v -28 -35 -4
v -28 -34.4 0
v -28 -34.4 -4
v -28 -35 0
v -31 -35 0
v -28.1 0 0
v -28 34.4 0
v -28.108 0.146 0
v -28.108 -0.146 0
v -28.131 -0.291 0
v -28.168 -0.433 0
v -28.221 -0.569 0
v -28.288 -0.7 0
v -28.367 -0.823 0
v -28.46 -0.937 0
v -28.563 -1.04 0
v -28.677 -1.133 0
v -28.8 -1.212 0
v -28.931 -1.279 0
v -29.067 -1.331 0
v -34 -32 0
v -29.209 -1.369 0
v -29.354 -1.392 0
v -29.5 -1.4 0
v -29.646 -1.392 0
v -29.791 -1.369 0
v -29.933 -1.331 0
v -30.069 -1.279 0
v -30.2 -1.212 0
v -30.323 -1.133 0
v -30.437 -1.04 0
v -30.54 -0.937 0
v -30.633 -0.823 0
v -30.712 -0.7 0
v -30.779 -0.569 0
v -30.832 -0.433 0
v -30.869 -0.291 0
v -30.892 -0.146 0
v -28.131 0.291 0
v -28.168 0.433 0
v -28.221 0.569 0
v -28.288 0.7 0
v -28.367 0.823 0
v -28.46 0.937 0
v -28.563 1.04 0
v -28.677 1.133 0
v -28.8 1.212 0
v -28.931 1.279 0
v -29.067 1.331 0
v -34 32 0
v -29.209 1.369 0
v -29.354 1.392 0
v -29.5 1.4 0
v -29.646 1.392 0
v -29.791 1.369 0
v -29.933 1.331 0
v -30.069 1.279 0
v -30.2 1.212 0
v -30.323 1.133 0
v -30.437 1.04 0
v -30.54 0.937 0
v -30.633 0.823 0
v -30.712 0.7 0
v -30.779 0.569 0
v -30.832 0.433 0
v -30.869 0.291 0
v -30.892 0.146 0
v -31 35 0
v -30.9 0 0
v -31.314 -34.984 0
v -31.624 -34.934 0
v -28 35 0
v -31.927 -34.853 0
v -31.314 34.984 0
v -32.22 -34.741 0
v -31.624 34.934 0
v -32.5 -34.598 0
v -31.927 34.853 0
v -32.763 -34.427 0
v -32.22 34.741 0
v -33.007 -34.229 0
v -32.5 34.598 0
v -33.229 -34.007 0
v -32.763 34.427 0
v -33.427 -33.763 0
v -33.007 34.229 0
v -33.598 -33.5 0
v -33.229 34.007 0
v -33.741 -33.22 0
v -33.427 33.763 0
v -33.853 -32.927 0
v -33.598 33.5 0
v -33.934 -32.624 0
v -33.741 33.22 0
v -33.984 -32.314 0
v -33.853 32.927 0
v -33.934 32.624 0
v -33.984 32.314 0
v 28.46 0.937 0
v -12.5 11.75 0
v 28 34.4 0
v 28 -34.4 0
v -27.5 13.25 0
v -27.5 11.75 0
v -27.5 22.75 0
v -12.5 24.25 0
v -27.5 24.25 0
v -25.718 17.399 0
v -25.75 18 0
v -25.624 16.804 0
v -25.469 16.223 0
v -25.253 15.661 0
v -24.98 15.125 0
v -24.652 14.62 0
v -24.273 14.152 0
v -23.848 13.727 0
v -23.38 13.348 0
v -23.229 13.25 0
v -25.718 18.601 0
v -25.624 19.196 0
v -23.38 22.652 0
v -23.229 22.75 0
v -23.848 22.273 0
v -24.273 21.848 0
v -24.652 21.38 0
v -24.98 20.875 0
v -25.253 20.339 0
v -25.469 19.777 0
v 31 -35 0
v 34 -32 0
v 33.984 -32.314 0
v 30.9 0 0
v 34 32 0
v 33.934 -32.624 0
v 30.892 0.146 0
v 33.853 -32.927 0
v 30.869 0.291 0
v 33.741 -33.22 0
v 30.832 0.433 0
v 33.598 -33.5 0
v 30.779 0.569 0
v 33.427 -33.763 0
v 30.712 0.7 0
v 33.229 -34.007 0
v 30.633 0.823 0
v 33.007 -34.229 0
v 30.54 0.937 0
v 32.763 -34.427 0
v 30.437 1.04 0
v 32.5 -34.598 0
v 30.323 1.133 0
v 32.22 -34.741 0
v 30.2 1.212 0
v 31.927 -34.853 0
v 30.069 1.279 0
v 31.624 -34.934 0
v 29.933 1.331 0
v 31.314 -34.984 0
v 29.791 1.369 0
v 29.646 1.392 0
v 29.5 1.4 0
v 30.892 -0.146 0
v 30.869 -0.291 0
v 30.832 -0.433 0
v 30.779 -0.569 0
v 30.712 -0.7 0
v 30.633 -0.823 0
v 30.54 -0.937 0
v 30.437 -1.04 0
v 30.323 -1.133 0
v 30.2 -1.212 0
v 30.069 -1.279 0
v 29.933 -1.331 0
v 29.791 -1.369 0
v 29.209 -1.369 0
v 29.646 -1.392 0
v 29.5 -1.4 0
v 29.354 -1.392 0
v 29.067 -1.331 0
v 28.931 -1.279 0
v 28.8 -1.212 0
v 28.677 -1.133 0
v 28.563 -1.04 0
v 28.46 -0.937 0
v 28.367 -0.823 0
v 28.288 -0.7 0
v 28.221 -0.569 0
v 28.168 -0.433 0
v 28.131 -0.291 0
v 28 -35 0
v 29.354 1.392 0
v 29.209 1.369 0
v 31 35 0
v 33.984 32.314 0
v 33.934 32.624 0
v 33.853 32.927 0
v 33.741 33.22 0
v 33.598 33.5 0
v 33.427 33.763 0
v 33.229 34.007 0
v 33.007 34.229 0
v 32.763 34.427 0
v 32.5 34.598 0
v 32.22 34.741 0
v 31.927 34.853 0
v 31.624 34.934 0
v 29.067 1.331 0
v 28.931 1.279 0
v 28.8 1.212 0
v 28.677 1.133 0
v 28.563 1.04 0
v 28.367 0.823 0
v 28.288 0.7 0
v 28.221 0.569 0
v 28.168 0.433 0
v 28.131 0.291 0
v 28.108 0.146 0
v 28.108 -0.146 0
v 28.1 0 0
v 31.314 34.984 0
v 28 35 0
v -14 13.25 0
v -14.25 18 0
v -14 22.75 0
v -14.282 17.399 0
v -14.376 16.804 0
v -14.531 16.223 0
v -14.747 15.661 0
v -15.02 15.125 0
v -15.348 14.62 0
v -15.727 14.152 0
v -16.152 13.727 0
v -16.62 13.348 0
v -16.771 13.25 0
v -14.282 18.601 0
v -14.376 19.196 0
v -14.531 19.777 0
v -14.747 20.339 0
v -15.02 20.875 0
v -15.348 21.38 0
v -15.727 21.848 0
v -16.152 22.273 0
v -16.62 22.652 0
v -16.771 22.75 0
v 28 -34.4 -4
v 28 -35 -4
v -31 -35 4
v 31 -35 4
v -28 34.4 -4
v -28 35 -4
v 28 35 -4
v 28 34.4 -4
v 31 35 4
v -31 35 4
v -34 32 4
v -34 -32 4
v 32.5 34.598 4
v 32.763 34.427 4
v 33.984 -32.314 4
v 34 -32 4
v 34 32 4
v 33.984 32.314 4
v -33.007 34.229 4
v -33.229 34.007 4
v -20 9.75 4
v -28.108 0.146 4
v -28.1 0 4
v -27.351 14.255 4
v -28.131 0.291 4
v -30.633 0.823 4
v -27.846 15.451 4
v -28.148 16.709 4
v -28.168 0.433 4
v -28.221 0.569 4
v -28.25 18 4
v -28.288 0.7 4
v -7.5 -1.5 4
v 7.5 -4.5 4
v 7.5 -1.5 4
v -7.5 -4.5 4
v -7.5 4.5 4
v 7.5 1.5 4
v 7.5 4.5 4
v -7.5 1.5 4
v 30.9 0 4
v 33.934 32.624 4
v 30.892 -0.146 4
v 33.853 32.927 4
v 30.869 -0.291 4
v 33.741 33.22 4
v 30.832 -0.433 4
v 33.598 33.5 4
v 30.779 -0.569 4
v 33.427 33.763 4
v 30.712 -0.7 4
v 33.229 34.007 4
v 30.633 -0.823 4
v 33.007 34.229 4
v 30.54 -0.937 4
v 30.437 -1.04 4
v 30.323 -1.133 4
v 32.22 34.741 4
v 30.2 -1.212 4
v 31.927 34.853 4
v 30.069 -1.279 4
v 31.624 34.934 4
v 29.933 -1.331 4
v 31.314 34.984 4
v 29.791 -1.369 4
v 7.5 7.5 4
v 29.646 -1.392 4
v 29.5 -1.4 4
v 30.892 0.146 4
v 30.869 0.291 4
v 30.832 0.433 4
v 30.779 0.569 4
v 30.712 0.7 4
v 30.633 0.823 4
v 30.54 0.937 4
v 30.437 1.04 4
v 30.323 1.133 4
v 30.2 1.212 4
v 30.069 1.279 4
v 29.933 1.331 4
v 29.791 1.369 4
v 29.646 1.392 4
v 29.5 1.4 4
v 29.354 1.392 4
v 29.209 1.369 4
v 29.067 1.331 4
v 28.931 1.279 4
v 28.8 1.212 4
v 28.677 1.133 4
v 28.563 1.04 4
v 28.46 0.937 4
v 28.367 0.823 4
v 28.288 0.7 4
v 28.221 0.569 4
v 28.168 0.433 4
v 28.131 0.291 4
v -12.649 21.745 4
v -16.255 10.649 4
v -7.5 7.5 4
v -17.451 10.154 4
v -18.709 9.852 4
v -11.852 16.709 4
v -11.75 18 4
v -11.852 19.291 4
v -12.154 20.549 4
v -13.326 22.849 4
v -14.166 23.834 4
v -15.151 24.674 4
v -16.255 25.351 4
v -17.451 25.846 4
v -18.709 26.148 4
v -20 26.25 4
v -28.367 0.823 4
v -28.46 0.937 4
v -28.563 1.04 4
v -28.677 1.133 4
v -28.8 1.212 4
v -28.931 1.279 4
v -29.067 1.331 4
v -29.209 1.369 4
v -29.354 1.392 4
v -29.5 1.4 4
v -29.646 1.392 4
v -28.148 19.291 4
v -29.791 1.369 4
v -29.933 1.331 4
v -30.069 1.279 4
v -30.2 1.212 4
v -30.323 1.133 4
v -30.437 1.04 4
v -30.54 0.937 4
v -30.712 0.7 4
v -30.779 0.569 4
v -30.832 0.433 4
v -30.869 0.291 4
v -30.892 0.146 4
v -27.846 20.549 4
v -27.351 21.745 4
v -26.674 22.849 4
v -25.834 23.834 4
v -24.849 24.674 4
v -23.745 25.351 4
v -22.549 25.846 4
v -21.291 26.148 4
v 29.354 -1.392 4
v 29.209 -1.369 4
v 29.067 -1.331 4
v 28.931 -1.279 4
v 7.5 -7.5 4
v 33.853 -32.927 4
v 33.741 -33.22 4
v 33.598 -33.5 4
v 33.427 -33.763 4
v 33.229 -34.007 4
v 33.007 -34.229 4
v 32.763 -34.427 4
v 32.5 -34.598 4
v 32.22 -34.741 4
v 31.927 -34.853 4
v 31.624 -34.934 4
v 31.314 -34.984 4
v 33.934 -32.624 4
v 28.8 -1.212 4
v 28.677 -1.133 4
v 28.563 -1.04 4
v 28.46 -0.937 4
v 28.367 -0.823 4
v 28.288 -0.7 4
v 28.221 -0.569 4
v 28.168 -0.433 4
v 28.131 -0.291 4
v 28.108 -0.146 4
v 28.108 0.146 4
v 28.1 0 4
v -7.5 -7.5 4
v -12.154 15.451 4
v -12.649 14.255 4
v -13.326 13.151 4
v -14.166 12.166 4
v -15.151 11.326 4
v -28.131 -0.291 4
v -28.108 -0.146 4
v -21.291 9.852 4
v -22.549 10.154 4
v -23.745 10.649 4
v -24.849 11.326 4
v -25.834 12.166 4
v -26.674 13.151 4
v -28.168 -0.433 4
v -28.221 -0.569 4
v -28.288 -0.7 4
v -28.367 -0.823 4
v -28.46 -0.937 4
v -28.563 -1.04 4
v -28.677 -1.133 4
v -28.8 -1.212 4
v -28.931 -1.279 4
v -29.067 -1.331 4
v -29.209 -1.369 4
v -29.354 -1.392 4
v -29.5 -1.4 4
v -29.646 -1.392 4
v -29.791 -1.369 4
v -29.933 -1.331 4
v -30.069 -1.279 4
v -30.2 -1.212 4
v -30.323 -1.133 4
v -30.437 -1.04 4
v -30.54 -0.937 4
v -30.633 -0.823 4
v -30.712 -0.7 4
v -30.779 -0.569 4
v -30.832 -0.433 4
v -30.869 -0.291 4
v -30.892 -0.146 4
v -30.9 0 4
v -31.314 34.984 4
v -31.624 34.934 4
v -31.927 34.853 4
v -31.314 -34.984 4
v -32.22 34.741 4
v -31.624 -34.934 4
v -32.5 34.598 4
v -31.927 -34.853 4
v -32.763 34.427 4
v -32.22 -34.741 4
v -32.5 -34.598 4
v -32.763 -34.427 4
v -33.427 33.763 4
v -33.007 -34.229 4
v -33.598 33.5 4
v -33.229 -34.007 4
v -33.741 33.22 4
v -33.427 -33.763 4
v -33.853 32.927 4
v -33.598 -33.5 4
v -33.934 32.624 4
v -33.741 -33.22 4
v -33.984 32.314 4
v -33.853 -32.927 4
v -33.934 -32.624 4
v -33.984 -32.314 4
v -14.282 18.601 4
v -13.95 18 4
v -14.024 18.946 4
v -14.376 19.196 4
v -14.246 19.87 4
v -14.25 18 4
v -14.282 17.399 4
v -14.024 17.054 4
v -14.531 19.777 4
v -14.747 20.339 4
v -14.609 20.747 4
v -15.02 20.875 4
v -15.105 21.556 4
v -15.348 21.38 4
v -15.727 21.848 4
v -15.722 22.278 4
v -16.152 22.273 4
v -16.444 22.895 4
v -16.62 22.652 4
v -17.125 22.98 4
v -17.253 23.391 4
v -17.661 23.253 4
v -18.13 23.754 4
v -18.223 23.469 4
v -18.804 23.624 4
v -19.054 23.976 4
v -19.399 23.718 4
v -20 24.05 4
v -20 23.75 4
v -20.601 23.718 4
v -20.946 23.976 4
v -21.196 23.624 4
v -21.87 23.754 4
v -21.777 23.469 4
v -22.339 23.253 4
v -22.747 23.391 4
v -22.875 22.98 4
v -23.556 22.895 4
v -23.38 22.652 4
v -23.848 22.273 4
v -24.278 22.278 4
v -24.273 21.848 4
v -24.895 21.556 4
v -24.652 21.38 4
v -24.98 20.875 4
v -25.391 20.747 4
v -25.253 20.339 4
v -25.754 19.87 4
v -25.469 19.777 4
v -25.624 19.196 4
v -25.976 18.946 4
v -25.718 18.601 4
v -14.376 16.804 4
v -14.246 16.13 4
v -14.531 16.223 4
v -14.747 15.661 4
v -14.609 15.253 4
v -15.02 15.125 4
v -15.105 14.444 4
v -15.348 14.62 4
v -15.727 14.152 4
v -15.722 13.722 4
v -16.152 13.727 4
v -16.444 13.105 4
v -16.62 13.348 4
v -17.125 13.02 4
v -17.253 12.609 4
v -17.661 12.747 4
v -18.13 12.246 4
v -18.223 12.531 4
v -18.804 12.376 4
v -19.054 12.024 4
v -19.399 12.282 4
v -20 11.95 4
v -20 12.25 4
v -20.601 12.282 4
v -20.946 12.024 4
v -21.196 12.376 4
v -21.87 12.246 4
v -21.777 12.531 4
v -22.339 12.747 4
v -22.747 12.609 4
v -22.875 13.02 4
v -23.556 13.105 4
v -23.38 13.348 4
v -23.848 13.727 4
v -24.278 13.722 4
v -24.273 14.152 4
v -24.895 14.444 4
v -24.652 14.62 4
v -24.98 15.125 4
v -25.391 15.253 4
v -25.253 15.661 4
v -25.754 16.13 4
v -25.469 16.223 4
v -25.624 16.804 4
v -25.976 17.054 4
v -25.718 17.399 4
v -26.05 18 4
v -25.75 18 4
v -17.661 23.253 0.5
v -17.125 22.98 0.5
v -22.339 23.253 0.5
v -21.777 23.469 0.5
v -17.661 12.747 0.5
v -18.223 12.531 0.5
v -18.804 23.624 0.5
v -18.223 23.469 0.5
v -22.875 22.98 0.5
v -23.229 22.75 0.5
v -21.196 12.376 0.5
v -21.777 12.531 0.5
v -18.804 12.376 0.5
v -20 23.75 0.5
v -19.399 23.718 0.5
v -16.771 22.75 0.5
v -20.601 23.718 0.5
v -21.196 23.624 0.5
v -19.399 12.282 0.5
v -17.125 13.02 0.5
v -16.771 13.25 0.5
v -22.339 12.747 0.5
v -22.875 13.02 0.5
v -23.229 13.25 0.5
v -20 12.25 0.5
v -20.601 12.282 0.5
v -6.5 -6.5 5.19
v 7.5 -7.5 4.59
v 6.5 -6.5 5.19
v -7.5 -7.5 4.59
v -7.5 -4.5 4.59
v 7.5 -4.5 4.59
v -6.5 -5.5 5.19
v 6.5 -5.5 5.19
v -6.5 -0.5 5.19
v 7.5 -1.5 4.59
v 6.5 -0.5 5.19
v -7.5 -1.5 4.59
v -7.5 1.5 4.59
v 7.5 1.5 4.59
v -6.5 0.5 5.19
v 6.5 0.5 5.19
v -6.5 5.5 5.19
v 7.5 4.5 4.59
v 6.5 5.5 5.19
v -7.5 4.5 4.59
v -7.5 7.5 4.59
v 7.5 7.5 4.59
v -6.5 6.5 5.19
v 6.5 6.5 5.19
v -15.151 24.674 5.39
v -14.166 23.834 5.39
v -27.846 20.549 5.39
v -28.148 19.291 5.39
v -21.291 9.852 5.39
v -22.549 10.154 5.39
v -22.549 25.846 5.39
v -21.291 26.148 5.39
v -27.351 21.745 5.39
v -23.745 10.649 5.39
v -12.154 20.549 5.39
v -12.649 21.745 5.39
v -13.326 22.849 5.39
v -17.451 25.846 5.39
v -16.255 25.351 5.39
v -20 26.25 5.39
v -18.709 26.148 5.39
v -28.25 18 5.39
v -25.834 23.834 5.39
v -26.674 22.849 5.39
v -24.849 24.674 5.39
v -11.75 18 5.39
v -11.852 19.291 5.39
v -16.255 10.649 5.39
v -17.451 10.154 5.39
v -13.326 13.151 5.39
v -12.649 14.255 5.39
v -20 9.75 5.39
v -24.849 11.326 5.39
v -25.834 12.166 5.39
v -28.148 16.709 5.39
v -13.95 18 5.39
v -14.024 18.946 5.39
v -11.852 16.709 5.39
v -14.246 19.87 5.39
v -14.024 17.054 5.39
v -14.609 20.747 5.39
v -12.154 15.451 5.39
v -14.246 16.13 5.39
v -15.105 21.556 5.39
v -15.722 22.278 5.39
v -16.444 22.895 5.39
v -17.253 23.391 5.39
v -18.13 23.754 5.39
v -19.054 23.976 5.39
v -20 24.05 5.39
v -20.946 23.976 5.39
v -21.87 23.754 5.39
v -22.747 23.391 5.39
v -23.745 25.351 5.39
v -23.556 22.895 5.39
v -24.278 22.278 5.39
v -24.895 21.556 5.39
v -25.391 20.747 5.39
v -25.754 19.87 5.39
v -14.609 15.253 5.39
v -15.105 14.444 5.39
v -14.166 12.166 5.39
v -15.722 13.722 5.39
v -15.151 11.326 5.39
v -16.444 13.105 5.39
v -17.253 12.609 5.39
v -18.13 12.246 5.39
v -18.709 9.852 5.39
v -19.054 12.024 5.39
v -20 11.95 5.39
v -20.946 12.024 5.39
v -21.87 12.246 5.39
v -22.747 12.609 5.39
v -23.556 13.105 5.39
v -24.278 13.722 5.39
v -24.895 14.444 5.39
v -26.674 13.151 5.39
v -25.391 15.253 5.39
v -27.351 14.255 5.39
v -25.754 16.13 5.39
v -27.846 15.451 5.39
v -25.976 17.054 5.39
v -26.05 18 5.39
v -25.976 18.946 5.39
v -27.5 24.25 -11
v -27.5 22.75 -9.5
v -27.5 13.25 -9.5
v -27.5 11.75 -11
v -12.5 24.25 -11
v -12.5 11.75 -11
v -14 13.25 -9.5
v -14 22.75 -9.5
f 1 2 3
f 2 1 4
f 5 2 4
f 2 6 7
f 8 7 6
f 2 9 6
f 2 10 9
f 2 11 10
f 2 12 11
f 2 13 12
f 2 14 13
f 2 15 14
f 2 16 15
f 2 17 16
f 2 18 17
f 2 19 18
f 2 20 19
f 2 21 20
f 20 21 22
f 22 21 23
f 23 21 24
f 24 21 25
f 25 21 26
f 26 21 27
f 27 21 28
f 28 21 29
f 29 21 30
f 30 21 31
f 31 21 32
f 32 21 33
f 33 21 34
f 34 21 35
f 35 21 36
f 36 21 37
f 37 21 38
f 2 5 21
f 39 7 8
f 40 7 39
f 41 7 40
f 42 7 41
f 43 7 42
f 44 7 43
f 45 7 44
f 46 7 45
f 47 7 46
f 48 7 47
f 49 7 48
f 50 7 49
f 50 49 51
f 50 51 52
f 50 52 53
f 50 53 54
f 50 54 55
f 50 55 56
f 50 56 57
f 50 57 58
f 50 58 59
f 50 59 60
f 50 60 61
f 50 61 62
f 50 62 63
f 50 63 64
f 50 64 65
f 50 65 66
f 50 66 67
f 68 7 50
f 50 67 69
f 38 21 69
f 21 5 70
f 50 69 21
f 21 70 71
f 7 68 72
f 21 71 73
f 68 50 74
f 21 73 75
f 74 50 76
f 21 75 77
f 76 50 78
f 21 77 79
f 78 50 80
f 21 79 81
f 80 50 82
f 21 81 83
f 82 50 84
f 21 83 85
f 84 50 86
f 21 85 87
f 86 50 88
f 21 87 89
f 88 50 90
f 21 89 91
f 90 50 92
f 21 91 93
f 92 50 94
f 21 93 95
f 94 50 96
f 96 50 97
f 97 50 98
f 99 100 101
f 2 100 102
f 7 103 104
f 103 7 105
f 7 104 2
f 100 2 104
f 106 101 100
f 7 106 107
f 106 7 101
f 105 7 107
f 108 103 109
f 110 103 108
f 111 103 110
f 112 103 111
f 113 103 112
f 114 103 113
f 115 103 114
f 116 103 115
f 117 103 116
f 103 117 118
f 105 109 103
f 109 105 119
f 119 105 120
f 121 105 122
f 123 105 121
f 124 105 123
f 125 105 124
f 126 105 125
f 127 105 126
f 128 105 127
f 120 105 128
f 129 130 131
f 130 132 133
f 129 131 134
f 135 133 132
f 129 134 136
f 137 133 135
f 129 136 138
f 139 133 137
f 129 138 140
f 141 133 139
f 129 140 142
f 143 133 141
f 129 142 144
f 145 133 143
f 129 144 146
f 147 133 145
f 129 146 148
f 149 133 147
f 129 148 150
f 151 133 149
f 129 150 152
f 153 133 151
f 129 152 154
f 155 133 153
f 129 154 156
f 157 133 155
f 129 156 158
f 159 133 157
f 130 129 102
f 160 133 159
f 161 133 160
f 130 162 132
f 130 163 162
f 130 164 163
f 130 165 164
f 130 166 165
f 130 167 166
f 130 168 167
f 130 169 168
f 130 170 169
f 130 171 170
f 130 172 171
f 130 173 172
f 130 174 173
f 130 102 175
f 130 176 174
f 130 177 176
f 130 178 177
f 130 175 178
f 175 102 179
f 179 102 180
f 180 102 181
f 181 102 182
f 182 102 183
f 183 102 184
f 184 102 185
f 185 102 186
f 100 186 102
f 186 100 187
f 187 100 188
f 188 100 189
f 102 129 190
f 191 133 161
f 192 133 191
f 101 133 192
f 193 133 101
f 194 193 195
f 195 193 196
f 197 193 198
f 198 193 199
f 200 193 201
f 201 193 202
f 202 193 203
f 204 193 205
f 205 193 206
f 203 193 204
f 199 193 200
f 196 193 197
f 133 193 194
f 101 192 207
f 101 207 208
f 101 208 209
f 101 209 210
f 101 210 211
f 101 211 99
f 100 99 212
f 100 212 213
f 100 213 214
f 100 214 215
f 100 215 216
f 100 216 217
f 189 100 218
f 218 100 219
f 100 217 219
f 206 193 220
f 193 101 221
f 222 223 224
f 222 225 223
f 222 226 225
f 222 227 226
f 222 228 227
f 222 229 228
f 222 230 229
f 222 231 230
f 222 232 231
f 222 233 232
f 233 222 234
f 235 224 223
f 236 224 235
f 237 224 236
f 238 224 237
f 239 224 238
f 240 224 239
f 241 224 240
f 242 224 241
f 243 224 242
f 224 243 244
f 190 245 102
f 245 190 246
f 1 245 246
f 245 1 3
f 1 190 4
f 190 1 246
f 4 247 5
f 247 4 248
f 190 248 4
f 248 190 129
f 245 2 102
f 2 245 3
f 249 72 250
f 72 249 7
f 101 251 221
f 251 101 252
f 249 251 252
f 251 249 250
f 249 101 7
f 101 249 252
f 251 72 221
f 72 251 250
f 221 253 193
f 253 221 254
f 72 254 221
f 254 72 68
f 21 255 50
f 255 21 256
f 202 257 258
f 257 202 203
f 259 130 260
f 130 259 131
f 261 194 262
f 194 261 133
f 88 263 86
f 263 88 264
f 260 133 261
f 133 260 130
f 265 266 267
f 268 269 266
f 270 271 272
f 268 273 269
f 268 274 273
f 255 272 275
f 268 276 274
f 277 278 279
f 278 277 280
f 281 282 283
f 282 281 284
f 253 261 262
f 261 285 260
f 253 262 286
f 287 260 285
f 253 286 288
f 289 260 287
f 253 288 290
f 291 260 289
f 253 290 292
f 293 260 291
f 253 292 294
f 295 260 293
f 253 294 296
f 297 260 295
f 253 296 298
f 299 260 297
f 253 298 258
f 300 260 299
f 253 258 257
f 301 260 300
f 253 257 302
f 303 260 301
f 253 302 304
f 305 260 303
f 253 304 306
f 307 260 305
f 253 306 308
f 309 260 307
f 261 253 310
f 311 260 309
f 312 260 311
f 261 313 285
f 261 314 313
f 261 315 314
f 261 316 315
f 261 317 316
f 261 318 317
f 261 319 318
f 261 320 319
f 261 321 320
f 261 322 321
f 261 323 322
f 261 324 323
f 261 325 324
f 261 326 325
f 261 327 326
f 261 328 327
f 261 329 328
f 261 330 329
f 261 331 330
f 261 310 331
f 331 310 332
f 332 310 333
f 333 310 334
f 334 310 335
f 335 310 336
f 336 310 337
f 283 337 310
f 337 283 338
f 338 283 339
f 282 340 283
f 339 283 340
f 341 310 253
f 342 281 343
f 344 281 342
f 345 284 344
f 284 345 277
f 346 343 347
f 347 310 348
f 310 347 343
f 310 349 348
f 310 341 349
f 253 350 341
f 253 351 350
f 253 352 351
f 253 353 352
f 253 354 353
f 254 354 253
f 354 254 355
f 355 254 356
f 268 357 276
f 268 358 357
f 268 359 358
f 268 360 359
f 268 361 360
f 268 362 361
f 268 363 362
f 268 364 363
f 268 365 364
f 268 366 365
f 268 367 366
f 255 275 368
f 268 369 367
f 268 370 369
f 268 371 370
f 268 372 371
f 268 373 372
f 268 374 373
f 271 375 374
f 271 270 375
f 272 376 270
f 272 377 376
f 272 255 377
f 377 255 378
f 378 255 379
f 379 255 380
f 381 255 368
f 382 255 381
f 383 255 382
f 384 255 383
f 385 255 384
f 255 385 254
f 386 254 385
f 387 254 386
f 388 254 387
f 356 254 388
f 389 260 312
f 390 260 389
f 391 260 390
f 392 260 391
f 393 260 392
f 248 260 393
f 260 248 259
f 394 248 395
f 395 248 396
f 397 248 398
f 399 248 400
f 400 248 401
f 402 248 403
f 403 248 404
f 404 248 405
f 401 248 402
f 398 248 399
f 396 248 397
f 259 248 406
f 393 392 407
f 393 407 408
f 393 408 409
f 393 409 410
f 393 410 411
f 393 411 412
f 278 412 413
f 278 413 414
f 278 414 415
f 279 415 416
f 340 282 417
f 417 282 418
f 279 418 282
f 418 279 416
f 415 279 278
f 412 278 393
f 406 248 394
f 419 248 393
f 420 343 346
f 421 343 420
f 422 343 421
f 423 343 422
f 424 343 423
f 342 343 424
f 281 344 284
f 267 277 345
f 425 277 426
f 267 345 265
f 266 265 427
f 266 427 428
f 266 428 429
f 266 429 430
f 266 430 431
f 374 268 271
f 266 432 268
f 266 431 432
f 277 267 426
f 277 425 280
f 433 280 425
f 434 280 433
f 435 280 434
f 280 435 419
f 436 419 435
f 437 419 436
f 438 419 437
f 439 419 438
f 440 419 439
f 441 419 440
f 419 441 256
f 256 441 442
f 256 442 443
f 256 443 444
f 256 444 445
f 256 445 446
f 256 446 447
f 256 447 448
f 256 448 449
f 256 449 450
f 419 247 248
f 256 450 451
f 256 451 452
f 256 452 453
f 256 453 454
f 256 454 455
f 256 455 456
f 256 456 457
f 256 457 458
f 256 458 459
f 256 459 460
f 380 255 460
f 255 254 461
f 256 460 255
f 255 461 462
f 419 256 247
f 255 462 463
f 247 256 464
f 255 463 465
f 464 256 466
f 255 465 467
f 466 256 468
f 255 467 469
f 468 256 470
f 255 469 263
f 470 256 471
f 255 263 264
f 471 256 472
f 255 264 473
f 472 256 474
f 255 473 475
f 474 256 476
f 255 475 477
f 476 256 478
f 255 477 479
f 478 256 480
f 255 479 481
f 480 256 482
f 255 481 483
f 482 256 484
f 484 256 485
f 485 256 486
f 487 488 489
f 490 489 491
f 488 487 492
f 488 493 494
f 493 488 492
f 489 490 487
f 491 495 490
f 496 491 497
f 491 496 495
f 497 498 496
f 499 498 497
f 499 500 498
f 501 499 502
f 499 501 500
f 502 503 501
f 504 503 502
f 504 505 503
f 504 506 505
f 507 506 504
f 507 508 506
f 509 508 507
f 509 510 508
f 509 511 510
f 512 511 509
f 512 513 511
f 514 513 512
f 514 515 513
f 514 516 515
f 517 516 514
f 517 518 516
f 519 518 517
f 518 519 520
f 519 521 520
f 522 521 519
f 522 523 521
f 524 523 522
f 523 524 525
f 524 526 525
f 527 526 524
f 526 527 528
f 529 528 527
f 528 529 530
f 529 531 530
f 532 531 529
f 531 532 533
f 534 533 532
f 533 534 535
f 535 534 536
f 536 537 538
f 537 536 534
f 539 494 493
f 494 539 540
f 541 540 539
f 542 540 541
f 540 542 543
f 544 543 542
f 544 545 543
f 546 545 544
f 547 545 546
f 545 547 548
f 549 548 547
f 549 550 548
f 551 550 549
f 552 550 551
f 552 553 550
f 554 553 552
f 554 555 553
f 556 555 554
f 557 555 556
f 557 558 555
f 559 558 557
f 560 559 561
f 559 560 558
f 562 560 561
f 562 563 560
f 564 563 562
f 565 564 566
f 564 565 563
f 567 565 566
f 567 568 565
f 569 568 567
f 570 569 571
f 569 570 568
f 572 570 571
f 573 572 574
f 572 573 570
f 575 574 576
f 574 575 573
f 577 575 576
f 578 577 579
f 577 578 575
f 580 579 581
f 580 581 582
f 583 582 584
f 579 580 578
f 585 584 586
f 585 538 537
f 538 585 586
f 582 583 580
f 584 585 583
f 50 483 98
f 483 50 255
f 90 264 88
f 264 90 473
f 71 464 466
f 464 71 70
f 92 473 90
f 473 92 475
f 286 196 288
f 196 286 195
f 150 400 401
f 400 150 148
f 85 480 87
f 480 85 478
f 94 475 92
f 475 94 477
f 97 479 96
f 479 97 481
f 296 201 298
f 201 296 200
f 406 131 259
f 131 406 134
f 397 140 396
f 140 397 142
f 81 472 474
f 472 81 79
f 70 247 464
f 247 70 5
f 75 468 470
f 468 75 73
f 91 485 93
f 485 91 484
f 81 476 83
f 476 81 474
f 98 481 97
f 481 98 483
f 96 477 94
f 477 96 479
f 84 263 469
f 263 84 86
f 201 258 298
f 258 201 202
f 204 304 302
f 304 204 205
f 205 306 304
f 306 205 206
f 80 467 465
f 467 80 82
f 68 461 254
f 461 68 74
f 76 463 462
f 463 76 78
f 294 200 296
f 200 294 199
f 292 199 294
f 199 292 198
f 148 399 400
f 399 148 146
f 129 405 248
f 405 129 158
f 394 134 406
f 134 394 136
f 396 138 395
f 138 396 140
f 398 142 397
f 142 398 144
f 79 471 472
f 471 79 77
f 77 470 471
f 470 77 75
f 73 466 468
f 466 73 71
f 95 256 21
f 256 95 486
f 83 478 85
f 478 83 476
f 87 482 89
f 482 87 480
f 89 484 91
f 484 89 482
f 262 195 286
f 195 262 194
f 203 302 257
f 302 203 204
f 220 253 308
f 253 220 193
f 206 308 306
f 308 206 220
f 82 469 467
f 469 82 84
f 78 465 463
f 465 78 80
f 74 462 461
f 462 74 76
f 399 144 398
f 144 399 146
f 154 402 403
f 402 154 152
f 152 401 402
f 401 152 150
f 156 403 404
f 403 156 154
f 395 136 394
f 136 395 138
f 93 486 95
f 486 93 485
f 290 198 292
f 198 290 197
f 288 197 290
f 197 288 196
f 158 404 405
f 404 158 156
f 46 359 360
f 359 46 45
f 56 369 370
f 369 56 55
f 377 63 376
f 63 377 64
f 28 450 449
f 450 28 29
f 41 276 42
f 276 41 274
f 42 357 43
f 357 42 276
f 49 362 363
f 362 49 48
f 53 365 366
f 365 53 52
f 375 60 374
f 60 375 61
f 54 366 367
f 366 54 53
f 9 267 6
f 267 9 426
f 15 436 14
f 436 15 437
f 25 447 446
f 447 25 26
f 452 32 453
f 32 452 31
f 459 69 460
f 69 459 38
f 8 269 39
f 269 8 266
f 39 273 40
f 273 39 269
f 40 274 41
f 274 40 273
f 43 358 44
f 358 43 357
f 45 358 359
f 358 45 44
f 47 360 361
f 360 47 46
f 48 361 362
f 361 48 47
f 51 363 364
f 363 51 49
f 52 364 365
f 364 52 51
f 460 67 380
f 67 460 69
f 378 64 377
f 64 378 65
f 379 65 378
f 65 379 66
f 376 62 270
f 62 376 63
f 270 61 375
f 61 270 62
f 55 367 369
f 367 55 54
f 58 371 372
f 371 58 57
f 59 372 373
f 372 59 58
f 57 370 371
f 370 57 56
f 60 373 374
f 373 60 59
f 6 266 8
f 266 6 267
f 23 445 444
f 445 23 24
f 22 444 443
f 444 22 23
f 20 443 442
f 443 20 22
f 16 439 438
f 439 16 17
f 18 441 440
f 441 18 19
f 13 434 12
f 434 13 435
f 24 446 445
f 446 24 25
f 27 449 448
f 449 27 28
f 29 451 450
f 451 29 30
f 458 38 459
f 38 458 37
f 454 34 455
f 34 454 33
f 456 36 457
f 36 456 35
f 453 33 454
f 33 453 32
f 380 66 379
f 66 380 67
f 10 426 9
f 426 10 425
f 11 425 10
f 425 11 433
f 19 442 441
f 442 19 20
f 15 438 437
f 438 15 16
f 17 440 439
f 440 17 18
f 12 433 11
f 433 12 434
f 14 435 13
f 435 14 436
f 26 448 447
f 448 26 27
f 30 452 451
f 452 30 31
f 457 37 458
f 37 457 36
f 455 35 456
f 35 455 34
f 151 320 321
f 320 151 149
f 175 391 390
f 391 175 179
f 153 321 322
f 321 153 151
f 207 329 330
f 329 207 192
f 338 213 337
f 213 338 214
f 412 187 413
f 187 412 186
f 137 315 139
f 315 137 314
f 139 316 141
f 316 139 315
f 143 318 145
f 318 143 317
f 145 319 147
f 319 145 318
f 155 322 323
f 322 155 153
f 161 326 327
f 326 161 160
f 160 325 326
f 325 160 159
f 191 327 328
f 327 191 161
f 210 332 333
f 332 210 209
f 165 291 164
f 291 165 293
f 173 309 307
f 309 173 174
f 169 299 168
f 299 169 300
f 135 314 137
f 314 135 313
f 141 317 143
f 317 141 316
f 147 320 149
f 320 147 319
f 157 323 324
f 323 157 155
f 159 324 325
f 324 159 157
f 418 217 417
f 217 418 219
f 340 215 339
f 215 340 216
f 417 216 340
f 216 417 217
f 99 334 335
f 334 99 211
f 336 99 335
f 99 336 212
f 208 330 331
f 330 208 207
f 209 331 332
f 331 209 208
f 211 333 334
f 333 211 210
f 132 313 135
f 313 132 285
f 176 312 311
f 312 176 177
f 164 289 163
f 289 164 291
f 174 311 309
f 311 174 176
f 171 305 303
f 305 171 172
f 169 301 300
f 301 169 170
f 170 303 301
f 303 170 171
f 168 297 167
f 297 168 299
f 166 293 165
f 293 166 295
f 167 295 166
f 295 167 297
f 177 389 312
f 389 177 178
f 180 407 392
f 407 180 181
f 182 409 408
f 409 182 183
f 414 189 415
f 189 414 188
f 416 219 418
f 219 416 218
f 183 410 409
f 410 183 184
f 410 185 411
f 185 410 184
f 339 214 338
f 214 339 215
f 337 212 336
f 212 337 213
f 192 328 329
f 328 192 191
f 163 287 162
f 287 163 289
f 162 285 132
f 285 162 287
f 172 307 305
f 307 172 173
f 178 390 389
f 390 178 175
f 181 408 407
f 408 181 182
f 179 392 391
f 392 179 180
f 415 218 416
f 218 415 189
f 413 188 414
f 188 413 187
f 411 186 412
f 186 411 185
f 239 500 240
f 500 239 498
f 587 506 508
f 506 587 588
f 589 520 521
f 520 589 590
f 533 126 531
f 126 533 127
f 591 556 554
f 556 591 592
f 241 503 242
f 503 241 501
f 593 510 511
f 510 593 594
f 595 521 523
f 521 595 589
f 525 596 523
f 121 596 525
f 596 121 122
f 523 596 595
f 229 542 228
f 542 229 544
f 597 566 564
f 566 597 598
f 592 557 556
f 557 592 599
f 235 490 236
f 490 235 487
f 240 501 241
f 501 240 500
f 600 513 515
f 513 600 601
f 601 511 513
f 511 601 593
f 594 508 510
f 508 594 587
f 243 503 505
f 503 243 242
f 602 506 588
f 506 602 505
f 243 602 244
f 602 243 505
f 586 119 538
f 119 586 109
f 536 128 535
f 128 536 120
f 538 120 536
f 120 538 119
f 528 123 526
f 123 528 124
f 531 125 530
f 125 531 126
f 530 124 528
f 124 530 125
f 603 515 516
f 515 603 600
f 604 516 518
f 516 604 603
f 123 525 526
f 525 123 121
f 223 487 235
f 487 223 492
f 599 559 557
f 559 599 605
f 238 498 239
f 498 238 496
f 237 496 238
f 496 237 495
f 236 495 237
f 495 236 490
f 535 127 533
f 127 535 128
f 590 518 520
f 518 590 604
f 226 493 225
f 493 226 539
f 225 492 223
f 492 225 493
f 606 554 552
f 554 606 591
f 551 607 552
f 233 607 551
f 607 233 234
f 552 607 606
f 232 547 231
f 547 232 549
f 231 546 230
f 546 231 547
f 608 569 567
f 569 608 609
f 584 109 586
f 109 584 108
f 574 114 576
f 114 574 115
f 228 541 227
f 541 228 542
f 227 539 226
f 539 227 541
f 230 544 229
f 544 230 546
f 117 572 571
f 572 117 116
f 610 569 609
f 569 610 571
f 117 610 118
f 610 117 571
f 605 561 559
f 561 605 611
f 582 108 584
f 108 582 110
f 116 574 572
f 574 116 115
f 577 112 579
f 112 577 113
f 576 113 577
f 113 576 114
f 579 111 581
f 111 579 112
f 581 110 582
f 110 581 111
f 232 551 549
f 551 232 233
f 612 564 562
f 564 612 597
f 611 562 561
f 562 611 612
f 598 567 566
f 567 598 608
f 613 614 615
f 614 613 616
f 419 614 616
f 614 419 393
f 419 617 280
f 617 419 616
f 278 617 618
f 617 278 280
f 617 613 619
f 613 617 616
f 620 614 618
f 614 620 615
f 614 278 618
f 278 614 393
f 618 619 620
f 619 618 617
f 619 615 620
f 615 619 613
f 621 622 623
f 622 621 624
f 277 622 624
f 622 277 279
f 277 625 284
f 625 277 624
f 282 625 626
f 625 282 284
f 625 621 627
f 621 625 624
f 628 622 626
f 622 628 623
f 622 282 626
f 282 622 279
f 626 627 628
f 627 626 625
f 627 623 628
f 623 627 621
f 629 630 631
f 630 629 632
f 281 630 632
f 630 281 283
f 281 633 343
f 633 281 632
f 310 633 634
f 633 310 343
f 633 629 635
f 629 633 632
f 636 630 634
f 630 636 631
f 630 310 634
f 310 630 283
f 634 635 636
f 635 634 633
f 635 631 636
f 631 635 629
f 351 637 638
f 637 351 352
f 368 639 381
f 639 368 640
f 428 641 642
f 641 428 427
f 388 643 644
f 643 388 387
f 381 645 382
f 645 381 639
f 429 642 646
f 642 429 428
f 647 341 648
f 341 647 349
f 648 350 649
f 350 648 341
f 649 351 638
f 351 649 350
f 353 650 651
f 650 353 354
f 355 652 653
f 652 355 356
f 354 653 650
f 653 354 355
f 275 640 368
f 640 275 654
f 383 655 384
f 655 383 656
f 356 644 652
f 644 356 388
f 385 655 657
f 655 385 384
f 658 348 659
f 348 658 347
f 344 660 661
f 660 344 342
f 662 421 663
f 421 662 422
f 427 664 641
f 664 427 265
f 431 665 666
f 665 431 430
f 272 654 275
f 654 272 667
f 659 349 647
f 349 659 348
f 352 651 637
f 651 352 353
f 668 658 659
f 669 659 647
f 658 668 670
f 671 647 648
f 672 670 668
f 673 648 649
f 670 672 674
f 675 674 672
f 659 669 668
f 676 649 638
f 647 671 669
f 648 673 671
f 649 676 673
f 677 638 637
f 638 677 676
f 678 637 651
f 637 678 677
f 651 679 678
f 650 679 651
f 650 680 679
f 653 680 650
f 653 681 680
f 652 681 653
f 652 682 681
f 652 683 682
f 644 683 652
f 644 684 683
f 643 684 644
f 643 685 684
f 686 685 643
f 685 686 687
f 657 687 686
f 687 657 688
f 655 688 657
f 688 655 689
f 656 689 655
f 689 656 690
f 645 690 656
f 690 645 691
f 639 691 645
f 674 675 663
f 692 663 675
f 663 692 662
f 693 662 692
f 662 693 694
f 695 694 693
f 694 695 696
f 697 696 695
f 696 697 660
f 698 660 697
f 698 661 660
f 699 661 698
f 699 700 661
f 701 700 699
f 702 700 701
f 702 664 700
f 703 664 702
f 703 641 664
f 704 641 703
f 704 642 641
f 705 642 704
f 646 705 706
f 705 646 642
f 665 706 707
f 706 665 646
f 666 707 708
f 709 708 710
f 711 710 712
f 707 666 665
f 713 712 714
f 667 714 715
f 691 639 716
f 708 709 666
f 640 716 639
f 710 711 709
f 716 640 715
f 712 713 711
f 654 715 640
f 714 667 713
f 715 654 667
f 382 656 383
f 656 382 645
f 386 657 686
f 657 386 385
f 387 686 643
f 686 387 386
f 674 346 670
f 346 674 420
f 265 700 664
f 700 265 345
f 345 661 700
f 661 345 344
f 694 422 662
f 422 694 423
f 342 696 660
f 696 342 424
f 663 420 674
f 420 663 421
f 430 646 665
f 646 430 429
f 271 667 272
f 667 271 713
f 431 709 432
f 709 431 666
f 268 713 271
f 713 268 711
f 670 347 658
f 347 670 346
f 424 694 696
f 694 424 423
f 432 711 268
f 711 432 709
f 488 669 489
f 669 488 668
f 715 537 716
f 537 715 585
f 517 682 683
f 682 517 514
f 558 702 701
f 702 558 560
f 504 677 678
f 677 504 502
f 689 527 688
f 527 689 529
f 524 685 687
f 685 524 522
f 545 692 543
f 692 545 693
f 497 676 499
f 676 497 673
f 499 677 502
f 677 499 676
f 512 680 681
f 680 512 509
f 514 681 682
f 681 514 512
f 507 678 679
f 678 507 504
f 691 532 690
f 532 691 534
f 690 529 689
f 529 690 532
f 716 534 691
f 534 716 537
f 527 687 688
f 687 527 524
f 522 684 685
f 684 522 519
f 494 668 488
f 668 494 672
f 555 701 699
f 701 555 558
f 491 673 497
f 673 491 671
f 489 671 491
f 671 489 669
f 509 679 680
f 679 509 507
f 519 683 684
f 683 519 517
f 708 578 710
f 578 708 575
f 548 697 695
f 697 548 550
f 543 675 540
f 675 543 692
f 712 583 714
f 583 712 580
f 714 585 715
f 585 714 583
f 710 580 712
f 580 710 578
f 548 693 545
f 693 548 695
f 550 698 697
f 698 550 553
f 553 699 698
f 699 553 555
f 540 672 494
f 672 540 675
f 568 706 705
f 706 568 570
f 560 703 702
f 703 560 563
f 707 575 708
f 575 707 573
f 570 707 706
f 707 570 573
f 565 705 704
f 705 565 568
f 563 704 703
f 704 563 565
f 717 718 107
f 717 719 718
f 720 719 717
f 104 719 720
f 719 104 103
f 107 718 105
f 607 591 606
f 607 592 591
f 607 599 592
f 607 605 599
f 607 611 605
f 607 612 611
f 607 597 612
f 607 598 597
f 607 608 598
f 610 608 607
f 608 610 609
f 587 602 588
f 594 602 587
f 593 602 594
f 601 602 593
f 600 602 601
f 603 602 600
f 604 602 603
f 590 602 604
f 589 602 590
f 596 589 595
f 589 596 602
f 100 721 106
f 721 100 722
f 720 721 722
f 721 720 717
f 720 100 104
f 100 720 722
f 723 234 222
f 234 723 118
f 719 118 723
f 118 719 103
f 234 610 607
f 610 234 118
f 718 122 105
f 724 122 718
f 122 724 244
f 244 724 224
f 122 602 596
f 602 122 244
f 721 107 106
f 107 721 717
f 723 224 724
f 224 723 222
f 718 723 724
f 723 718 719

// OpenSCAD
// =========================================================
// COMPONENT: ESP32 BRAIN POD — Top Lid
// Revision 3.0 — Matching Brick
// Updated 2026-05-31
//
// PRINTABLE PART 2 of 2. Pair with esp32_pod_shell.scad.
//
// Lid screws into shell bosses at x=±25 (F14 fix).
// Barrel jack hole on the lid near -X end.
//
// Print orientation: flat (face down).
// Material: PETG.
// =========================================================

include <esp32_pod_params.scad>

shell_h = pod_height - lid_h;

// --- OVER-CAP DIMENSIONS (v6.2) ---
// Lid is now an over-cap: X flush with pod outer (64, ±32 — NO skirt on ±X so the
// +X dock face stays flat), Y 70 (±35 = 1mm overhang each side) with a downward
// skirt on ±Y only. Underside at z=0, top at z=lid_h(4).
// v7.5: every one of these was a hard-coded number that happened to match
// pod_length=64 / pod_width=68. Lengthening the pod to 68 would have left them
// silently wrong. They are now derived, so the lid tracks the shell automatically.
lid_cap_x        = pod_length;            // 68 — flush, no overhang on dock faces
lid_cap_y        = pod_width + 2;         // 70 — 1mm overhang each side, front/back
skirt_depth      = 4.0;
skirt_y_outer    = lid_cap_y / 2;         // 35 — flush with cap edge
skirt_y_inner    = pod_width / 2 + 0.4;   // 34.4 — 0.4mm off the pod wall outer
skirt_x_half     = pod_length / 2 - 6;    // 28 — stays clear of the rounded corners

// --- JACK SUPPORT CRADLE (v6.2) ---
// PLACEHOLDER — MEASURE REAL JACK. The user's barrel jack is a BARE socket (no nut),
// so plug-in force would push it down/in. This U-pocket hangs under the lid around the
// jack hole at (-22,18); the bottom shelf takes the downward push. Front (toward -X/USB)
// left open for the wire/solder lugs.
jack_body_w      = 9.5;   // MEASURE (M15) — Y width of the jack body
jack_body_l      = 12;    // MEASURE (M14) — X length of the jack body
jack_body_h      = 11;    // MEASURE (M16) — Z depth hanging below the lid
cradle_t         = 1.5;   // cradle wall thickness

// v7.5 guard: the cradle used to overrun the pod cavity by 1.5mm, so the lid
// simply could not close, and nobody noticed because all three dims are guesses.
// This now fails loudly the moment a measured jack is too big for its position.
assert(barrel_jack_x - jack_body_l/2 - cradle_t > -pod_int_length/2,
       "Jack cradle overruns the -X pod wall. Move barrel_jack_x inboard (toward 0) \
or shrink the cradle.");

// --- MODULES ---

// Over-cap body: X flush (±32), Y overhang (±35), rounded corners match pod fillet.
module lid_cap_body() {
    pod_rounded_box(lid_cap_x, lid_cap_y, lid_h, pod_fillet);
}

// Downward skirt on ±Y faces only — locates the lid over the pod wall.
// Outer flush y=±35, inner y=±34.4 (0.4mm off the pod wall outer ±34), x within ±28.
module yy_skirt() {
    for(sy = [-1, 1]) {
        y_lo = (sy < 0) ? -skirt_y_outer : skirt_y_inner;
        translate([-skirt_x_half, y_lo, -skirt_depth])
            cube([2 * skirt_x_half, skirt_y_outer - skirt_y_inner, skirt_depth]);
    }
}

// Jack support cradle — open-topped U hanging below the lid underside.
// Two side walls + a back wall (+X side) + a bottom shelf; front (-X) left open.
module jack_cradle() {
    inner_x = jack_body_l;          // X opening for the jack body
    inner_y = jack_body_w;          // Y opening
    x0 = barrel_jack_x - inner_x/2; // inner-X start (front/open side faces -X)
    y0 = barrel_jack_y - inner_y/2;
    z_bot = -jack_body_h;           // bottom shelf top sits jack_body_h below the lid
    wall_h = jack_body_h + 0.5;     // overlap 0.5mm into the lid underside to fuse
    // Side walls (along X) at ±Y of the pocket
    for(sy = [-1, 1]) {
        ywall = (sy < 0) ? y0 - cradle_t : y0 + inner_y;
        translate([x0 - cradle_t, ywall, z_bot])
            cube([inner_x + cradle_t * 2, cradle_t, wall_h]);
    }
    // Back wall (+X side, away from USB) — closes the dock-end of the pocket
    translate([x0 + inner_x, y0 - cradle_t, z_bot])
        cube([cradle_t, inner_y + cradle_t * 2, wall_h]);
    // Bottom shelf — takes the downward insertion force
    translate([x0 - cradle_t, y0 - cradle_t, z_bot])
        cube([inner_x + cradle_t * 2, inner_y + cradle_t * 2, cradle_t]);
}

module barrel_jack_cutout() {
    // v6.1b: now fully inside the lid (was overflowing the edge → open notch)
    translate([barrel_jack_x, barrel_jack_y, -1])
        cylinder(d=barrel_jack_dia, h=lid_h + 2);
}

module lid_screw_holes() {
    // 2× M2 clearance holes — align with shell bosses at x=±25
    for(sx = [-1, 1]) {
        translate([sx * lid_screw_x, 0, -1])
            cylinder(d=lid_screw_d, h=lid_h + 2);
    }
}

// --- RAISED TACTILE FEATURES (v6.0) ---

module pod_id_marker() {
    // v6.1: was a braille ⠿ with 1.4mm dots — printed as mush on FDM (raised features
    // <2.5mm fail on a 0.4mm nozzle). Now 3 bold parallel ridges so a blind user can
    // tell the BRAIN POD apart from the identical-looking cells by touch.
    // Each ridge: 3mm wide × 1.2mm proud × 15mm long, rounded top, 6mm apart.
    for(ry = [-6, 0, 6])
        translate([0, ry, lid_h - 0.01])
            hull() {
                translate([-7.5, -1.5, 0]) cube([15, 3, 0.6]);
                translate([-6.5, -0.5, 0]) cube([13, 1, 1.2]);
            }
}

module jack_guard_ring() {
    // Raised ring around the barrel jack so a finger finds the power inlet without
    // probing the live contact. v6.1b: full ring now that the hole is inside the lid.
    translate([barrel_jack_x, barrel_jack_y, lid_h - 0.01])
        difference() {
            cylinder(d=barrel_jack_dia + 5, h=1.4, $fn=40);
            translate([0, 0, -1]) cylinder(d=barrel_jack_dia + 0.6, h=3.4, $fn=40);
        }
}

// --- MAIN LID MODULE ---

module esp32_pod_lid() {
    union() {
        difference() {
            union() {
                lid_cap_body();   // over-cap: X flush ±32, Y overhang ±35
                yy_skirt();        // downward skirt on ±Y faces only
            }
            barrel_jack_cutout();
            lid_screw_holes();
        }
        pod_id_marker();
        jack_guard_ring();
        jack_cradle();             // U-pocket under the jack hole takes plug-in force
    }
}

// --- RENDER ---
esp32_pod_lid();
